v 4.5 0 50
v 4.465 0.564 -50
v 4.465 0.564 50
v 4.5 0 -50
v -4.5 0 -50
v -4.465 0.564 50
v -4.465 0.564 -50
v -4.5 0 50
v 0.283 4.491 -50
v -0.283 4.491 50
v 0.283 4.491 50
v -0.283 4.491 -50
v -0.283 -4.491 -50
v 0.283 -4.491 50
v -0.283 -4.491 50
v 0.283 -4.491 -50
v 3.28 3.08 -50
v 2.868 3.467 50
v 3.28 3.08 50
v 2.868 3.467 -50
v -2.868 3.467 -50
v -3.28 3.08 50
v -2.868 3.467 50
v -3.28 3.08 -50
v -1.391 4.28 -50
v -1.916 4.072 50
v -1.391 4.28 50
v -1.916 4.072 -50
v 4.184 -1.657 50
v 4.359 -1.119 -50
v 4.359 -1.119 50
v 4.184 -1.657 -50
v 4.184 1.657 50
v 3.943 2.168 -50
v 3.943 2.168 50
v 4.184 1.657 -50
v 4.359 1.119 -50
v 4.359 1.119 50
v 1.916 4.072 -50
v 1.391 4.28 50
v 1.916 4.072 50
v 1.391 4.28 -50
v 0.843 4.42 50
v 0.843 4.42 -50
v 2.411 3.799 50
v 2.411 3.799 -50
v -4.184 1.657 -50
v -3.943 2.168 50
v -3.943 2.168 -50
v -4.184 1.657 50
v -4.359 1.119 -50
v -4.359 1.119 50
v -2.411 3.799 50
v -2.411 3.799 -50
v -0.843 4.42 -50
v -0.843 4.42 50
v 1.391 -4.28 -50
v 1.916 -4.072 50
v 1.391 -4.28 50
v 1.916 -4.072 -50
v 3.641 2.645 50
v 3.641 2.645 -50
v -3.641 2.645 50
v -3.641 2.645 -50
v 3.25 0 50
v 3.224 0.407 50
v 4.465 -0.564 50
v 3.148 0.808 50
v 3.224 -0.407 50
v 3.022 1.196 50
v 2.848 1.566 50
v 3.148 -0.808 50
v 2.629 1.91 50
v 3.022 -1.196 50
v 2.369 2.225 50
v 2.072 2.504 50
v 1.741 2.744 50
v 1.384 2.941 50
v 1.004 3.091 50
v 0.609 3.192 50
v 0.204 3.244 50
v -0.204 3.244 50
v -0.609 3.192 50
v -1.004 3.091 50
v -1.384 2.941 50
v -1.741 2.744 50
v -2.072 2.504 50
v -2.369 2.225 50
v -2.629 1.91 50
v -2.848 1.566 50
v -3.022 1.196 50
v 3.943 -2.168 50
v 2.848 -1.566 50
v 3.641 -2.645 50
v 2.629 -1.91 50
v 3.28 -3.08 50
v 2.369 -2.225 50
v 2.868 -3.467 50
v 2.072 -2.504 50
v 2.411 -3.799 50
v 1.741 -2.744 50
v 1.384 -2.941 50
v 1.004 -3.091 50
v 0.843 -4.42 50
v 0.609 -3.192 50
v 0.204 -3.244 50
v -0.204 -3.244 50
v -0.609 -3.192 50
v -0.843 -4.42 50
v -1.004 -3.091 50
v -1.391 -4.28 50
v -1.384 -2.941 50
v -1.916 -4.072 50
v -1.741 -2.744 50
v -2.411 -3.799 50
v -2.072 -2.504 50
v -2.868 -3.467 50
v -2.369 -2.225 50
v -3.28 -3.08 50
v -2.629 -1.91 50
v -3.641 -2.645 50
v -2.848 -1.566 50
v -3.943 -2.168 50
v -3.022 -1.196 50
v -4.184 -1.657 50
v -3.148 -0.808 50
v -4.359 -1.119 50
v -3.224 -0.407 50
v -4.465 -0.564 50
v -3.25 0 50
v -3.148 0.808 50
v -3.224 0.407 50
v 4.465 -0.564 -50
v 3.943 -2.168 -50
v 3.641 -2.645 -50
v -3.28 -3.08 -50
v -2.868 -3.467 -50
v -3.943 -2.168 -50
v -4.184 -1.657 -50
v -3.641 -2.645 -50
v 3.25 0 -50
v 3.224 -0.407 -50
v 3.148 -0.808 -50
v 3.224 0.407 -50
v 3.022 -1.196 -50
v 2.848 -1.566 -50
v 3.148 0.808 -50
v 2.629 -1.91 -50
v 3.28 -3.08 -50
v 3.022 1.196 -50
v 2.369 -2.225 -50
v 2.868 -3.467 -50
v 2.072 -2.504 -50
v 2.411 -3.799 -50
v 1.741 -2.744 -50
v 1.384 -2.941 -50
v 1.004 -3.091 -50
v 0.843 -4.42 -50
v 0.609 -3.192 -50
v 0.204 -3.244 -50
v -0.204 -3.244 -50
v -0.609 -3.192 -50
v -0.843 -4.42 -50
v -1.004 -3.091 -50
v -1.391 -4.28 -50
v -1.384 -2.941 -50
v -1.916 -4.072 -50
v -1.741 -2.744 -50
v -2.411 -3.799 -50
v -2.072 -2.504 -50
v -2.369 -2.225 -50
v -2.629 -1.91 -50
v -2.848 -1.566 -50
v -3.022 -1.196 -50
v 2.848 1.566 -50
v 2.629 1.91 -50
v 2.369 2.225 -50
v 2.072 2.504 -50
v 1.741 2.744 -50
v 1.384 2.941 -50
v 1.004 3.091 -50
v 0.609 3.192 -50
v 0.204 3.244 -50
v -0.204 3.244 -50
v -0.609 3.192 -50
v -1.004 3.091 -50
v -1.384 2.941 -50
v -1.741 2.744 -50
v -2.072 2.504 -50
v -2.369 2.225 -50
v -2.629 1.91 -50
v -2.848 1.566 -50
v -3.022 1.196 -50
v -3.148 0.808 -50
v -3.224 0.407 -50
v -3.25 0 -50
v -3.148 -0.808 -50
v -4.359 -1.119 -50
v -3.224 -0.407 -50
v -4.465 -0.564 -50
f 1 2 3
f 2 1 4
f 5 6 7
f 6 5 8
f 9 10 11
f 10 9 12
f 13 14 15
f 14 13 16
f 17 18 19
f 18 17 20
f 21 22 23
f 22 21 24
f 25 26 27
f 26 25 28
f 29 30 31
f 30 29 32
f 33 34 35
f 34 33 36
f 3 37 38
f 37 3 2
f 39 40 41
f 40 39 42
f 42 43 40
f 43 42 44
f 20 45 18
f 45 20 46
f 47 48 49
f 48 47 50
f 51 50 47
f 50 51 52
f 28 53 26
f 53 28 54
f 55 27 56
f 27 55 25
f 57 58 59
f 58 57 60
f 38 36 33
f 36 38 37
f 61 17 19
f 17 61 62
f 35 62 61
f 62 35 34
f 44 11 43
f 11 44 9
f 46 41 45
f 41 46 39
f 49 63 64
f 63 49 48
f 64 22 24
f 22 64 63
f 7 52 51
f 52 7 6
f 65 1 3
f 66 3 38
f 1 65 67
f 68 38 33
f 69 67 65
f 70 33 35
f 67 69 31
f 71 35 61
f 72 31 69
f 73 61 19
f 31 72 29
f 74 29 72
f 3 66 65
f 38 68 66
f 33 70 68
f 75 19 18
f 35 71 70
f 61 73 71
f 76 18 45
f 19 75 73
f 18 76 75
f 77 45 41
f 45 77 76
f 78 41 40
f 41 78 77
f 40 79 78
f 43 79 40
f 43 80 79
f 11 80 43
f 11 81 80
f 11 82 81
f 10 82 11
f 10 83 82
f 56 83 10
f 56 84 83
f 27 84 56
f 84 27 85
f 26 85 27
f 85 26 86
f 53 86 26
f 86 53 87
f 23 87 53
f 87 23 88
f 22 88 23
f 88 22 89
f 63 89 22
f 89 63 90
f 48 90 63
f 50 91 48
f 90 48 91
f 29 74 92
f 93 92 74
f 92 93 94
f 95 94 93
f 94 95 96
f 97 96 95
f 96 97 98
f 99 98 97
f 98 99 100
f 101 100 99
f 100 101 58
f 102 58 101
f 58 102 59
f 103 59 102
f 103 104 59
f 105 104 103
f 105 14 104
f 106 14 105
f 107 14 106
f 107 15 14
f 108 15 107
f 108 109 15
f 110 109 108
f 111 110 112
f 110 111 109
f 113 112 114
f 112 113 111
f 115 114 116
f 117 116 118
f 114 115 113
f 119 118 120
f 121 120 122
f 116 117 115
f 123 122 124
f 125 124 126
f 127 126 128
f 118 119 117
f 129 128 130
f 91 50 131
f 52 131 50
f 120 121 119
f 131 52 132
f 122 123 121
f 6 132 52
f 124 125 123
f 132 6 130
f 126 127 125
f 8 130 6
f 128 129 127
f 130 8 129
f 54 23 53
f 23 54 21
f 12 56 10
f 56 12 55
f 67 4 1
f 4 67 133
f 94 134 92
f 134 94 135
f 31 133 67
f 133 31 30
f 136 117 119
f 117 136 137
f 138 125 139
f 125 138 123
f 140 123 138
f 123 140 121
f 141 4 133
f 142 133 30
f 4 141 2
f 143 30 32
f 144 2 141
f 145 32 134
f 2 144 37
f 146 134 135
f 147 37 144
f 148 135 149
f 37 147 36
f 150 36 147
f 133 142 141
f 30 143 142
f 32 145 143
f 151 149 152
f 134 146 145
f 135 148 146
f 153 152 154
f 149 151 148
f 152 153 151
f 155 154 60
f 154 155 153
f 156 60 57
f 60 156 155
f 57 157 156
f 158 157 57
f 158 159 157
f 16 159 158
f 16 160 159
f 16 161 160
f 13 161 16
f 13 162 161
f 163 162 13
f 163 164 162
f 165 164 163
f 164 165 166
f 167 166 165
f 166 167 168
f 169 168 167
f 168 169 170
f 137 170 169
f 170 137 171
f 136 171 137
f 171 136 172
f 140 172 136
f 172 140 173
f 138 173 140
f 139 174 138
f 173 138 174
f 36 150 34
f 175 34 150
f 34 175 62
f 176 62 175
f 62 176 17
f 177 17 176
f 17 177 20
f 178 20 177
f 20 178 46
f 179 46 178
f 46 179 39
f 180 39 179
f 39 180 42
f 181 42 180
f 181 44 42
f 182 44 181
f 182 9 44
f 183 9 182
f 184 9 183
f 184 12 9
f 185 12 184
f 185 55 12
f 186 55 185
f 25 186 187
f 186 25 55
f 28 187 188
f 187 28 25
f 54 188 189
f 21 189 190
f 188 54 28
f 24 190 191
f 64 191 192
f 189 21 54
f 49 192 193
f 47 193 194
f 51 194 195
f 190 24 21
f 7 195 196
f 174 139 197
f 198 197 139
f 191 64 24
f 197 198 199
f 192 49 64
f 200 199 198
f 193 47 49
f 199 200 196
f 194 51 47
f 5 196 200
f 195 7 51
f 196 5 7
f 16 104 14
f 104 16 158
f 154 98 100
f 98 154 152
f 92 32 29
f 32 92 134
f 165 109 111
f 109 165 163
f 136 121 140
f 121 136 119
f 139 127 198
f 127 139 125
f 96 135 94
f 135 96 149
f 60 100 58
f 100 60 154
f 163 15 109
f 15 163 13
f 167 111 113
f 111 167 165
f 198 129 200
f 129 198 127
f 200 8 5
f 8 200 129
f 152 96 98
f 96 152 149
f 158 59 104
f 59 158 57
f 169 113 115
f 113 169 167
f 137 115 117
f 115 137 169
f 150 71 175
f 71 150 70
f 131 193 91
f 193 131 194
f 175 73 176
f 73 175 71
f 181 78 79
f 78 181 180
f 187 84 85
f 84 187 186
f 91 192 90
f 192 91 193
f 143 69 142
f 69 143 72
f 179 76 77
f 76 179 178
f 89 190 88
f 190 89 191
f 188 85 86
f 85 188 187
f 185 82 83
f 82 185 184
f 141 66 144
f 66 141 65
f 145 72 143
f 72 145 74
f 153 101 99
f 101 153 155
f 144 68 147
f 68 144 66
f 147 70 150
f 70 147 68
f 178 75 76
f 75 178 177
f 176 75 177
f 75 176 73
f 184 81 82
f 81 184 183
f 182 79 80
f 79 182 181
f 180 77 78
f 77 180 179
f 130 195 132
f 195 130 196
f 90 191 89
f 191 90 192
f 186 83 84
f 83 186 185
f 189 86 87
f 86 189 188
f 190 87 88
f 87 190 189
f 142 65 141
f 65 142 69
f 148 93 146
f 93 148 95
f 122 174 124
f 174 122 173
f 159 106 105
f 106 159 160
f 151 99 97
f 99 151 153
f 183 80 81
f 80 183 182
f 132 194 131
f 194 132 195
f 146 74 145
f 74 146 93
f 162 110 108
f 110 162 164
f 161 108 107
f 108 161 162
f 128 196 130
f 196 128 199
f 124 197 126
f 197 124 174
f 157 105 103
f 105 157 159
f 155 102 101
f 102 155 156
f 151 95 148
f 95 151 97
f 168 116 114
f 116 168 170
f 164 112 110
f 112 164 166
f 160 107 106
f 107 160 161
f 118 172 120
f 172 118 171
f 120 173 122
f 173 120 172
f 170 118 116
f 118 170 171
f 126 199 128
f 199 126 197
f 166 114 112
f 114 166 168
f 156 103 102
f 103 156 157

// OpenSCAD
$fn = 50;


difference() {
	union() {
		translate(v = [0, 0, -50.0000000000]) {
			cylinder(h = 100, r = 4.5000000000);
		}
	}
	union() {
		translate(v = [0, 0, -100.0000000000]) {
			cylinder(h = 200, r = 3.2500000000);
		}
	}
}
